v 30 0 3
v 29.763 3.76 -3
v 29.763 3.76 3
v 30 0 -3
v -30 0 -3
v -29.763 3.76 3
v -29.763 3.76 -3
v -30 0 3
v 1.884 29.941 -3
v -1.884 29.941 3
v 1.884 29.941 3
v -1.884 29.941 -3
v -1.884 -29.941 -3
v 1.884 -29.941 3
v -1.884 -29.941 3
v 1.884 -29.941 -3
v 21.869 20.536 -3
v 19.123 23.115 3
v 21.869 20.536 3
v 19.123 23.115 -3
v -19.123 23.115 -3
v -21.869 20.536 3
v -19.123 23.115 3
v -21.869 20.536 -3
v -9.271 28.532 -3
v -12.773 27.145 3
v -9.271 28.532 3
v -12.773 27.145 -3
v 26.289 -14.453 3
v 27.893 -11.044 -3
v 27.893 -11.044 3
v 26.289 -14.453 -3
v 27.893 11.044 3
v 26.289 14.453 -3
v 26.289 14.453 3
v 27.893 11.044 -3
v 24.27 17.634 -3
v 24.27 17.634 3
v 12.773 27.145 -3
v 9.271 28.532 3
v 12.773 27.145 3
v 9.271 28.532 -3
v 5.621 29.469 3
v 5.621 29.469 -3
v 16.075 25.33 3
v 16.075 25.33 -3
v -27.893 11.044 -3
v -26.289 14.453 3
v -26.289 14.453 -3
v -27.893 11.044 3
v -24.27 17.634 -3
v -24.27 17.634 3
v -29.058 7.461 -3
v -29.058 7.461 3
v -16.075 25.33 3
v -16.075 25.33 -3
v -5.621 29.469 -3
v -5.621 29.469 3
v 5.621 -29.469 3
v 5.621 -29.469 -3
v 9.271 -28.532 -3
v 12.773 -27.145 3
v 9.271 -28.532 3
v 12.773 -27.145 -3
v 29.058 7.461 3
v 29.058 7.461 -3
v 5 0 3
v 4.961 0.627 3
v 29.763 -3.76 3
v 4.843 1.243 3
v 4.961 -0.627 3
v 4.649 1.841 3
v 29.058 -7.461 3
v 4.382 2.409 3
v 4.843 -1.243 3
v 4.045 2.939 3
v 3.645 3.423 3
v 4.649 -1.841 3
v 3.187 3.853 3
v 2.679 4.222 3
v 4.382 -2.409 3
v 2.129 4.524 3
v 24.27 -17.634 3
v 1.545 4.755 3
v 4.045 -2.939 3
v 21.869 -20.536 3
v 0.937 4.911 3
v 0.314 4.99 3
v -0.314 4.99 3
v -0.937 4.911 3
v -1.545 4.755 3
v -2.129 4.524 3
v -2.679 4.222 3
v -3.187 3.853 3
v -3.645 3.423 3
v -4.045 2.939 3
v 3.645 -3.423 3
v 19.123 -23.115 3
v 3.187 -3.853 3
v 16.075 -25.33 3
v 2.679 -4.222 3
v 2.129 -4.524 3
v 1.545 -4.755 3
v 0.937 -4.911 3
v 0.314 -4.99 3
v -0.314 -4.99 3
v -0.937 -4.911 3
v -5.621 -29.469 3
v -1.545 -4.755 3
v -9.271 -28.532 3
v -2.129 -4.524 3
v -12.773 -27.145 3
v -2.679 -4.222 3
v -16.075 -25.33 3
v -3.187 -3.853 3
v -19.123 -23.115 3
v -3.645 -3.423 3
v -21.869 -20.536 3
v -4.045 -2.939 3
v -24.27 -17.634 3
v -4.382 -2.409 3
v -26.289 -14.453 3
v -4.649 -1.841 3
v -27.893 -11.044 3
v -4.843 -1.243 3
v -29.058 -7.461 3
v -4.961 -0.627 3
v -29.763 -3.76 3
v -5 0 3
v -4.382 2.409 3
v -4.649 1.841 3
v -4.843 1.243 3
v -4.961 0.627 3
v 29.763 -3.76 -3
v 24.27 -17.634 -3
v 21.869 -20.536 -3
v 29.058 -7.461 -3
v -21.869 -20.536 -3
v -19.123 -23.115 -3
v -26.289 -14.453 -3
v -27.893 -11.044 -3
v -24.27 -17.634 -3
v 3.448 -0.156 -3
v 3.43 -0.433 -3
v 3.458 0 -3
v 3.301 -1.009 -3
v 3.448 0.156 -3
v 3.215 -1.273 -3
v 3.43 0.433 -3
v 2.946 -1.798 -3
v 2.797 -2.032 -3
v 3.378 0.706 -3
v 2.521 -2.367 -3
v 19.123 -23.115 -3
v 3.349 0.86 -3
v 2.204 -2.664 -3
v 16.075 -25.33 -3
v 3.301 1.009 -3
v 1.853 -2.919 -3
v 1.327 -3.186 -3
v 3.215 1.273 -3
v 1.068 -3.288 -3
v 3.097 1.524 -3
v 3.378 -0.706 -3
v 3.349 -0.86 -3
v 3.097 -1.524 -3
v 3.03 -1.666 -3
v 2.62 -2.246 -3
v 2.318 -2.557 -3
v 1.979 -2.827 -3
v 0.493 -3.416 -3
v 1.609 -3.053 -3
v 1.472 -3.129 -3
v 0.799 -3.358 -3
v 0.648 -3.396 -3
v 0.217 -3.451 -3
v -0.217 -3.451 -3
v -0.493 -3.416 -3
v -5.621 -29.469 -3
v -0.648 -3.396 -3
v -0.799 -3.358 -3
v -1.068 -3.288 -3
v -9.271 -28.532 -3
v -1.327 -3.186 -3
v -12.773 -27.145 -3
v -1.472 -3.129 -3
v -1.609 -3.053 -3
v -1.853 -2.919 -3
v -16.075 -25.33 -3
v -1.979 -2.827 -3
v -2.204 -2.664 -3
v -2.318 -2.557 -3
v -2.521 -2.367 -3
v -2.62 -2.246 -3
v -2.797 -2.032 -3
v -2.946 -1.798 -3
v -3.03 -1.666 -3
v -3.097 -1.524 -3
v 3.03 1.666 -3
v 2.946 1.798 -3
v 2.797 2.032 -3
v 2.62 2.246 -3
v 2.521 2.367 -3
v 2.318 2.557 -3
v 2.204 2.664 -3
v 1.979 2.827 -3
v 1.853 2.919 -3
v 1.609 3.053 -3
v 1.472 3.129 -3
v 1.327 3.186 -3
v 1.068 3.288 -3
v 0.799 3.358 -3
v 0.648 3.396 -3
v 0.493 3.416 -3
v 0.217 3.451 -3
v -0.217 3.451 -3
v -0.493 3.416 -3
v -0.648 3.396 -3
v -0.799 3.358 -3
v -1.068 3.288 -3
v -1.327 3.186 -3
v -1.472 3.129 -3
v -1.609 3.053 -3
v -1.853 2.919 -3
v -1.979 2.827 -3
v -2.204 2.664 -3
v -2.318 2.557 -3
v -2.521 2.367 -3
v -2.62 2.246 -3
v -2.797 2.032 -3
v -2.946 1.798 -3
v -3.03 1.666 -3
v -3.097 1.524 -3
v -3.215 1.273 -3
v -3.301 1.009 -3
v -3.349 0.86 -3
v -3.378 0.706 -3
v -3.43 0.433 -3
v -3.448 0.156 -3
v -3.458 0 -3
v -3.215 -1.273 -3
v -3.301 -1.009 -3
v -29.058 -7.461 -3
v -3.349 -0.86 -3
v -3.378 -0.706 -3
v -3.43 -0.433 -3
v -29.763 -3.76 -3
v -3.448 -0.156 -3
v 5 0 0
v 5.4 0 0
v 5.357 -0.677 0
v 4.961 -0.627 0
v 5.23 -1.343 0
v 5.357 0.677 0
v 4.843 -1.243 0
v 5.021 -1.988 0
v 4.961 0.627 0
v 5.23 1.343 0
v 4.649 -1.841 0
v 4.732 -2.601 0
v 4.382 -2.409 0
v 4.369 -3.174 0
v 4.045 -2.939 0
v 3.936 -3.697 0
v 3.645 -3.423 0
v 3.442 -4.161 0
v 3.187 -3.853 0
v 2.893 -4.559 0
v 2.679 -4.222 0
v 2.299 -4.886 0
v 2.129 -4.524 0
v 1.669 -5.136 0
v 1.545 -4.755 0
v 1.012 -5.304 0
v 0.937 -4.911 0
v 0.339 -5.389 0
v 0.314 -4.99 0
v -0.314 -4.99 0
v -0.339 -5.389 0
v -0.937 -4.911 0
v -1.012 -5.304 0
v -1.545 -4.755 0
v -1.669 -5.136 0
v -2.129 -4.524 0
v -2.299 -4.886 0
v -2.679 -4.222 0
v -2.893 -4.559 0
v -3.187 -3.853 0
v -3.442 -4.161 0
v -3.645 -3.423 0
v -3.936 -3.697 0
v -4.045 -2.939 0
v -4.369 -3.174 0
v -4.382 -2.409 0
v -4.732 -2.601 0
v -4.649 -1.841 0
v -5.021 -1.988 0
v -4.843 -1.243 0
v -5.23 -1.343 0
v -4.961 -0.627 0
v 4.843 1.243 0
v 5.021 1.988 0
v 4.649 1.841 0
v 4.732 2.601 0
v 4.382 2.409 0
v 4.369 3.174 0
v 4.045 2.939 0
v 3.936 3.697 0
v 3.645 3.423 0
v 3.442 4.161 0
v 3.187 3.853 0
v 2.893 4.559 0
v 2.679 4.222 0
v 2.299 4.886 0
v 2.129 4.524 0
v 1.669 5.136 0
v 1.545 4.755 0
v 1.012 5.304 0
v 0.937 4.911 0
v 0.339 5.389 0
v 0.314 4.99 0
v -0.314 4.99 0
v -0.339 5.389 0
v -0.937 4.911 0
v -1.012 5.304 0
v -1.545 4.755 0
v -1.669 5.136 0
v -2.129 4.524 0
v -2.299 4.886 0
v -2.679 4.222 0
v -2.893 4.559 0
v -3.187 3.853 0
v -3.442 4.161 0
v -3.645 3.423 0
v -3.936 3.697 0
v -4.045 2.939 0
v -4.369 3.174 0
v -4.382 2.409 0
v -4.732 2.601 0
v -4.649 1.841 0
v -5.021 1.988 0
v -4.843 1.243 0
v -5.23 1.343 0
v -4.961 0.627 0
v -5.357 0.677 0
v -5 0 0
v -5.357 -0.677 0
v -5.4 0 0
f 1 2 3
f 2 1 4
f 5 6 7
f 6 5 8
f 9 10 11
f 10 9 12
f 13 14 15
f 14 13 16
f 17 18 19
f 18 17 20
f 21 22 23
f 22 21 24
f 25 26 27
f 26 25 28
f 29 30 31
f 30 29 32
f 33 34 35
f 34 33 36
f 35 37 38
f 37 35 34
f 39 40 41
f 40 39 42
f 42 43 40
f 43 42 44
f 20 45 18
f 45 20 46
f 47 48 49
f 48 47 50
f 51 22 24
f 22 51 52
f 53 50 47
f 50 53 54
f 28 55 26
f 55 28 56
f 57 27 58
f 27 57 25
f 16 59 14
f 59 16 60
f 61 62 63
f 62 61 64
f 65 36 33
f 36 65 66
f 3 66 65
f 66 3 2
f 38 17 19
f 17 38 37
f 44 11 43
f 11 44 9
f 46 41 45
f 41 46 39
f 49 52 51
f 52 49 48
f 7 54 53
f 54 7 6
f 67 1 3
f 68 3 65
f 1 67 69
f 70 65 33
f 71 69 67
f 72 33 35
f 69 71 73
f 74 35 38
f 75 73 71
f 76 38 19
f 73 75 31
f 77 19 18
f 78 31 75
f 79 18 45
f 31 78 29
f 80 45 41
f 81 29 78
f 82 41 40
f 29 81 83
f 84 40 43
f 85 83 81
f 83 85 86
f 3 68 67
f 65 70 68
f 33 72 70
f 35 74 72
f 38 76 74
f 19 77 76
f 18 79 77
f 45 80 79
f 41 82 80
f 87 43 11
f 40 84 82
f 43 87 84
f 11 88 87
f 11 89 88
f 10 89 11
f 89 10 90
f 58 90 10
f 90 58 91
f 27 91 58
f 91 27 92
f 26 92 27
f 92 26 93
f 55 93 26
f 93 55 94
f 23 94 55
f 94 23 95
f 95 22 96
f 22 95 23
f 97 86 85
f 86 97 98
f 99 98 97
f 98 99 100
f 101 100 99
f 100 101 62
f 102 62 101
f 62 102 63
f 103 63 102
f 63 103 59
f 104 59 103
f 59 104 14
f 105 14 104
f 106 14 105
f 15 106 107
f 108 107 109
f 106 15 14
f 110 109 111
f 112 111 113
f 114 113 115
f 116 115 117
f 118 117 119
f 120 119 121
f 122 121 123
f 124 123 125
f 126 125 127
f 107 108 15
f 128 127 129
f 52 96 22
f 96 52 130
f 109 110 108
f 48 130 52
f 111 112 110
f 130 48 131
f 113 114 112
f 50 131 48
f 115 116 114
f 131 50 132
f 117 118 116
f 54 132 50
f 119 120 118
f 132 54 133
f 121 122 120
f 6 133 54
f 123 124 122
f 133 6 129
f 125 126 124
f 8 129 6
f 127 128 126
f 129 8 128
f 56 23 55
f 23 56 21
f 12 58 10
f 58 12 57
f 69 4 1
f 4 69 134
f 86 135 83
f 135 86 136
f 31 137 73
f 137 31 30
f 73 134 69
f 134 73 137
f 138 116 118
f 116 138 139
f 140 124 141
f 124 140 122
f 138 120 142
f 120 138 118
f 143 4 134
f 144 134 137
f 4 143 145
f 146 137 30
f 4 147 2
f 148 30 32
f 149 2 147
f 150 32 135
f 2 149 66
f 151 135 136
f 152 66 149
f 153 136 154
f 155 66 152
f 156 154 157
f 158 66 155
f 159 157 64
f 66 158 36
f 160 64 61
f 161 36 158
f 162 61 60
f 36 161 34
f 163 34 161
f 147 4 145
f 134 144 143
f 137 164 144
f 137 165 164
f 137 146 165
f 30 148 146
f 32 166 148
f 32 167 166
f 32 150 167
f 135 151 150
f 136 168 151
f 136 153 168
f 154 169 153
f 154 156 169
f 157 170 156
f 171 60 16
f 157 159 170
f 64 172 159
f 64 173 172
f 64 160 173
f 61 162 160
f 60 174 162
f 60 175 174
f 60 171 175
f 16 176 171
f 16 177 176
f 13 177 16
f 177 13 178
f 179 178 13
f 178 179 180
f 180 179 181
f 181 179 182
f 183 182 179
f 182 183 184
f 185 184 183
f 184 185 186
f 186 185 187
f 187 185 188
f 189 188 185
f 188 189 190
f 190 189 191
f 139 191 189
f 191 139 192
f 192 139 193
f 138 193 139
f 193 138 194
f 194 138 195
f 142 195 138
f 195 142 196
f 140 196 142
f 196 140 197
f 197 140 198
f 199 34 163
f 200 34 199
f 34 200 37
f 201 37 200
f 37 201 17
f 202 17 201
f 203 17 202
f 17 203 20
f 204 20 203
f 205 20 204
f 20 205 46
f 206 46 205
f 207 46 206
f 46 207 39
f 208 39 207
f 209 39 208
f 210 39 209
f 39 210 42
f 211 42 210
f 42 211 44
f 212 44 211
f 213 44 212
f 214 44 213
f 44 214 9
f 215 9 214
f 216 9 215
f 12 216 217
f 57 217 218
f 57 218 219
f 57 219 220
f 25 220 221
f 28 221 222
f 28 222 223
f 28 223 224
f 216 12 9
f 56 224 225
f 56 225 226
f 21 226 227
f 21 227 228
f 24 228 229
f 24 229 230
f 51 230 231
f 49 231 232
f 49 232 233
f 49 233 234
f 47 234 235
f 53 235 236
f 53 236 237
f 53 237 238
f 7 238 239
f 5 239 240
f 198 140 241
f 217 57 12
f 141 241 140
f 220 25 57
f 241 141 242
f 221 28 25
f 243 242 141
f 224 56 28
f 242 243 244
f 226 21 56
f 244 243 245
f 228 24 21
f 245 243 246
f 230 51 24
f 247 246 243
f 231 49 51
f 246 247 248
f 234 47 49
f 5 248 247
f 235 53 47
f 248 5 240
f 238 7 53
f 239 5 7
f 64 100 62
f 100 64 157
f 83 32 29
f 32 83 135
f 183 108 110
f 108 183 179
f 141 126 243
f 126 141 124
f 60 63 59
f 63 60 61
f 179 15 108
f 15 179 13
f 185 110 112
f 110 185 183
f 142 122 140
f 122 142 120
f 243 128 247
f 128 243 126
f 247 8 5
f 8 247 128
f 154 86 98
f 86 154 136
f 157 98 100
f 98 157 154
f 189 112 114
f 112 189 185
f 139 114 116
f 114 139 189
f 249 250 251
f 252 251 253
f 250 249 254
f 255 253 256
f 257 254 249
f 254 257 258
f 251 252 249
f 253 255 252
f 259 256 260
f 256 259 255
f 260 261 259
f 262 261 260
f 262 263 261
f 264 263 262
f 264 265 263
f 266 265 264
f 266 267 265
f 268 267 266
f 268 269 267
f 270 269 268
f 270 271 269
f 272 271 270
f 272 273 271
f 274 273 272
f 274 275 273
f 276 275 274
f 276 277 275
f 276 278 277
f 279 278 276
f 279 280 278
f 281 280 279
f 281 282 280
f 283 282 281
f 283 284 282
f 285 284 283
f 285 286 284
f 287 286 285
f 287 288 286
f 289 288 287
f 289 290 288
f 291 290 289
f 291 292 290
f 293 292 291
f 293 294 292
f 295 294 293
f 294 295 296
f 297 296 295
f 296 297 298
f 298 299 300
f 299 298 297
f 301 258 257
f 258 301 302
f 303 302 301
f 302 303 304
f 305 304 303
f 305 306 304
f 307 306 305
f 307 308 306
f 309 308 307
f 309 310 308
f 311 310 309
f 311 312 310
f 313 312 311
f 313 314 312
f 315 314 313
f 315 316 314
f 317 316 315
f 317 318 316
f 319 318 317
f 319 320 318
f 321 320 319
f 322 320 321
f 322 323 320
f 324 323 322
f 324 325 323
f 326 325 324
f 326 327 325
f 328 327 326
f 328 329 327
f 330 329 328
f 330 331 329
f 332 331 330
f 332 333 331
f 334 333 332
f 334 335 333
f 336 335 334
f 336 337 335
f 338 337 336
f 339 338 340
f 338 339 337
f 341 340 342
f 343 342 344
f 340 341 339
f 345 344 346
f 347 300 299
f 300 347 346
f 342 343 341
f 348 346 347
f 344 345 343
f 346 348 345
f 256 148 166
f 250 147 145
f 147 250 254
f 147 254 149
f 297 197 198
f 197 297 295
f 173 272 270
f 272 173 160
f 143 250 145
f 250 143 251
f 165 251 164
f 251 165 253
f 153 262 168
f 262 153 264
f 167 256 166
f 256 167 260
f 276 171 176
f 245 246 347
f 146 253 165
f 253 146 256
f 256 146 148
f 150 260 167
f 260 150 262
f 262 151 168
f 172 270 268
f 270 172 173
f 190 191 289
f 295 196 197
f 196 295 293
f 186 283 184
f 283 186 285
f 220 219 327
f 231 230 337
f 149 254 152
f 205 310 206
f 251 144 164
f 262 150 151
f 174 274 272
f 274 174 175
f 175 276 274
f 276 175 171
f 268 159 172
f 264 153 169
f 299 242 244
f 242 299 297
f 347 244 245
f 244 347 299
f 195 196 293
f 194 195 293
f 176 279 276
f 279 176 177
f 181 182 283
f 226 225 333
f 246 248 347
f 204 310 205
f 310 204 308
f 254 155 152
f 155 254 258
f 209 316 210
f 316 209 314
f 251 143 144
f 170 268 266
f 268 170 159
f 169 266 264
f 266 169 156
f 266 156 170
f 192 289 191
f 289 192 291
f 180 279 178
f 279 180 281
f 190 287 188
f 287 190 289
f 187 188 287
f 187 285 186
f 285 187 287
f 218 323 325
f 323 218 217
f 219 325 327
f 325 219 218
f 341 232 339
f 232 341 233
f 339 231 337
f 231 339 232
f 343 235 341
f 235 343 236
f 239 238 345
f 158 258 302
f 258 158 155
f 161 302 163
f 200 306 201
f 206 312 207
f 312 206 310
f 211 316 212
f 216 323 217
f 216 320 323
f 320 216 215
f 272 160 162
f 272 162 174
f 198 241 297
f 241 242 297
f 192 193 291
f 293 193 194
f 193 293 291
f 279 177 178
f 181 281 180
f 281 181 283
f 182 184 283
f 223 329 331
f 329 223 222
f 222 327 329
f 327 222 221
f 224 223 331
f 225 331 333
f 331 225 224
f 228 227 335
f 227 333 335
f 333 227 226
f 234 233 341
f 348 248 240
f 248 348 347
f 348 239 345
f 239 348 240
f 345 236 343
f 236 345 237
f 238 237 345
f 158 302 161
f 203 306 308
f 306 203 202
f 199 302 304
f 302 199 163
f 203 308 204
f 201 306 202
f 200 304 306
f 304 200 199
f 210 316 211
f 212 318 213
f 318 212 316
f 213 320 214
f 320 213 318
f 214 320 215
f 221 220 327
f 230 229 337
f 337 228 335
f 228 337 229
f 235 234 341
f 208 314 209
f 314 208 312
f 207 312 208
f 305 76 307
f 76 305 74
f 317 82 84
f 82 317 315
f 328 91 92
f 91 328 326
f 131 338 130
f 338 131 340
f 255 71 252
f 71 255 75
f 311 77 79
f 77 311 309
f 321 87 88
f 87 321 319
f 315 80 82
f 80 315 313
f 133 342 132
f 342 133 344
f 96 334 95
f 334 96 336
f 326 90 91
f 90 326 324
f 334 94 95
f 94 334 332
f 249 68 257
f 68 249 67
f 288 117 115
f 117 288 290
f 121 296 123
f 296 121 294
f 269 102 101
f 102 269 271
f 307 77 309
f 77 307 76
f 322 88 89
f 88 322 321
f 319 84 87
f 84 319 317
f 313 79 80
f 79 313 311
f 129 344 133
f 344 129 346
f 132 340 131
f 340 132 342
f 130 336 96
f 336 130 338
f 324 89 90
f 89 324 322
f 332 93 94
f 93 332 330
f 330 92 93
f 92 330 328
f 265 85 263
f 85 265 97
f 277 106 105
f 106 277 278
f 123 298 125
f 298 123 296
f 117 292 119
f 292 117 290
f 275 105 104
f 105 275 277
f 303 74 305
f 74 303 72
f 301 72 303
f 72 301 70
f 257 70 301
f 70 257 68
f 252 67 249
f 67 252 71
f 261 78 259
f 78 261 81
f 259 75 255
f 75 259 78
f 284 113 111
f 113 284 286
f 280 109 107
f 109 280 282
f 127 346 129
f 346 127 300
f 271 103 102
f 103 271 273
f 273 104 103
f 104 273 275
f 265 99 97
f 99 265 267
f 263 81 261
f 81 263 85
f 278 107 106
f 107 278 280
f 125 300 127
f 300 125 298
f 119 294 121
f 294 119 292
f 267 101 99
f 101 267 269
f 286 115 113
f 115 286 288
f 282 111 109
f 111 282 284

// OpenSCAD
$fn = 50;

difference() {
	union() {
		translate(v = [0, 0, -3.0]) {
			cylinder(h = 6, r = 30.0);
		}
		#translate(v = [0, 0, -6.0]) {
			cylinder(h = 6, r = 2.875);
		}
	}
	union() {
		translate(v = [0, 0, 0]) {
			rotate(a = [0, 0, 0]) {
				difference() {
					union() {
						translate(v = [0, 0, -6.0]) {
							cylinder(h = 6, r = 2.6);
						}
						translate(v = [0, 0, -3.9]) {
							cylinder(h = 3.9, r1 = 2.875, r2 = 5.4);
						}
						translate(v = [0, 0, -6.0]) {
							cylinder(h = 6, r = 2.875);
						}
						translate(v = [0, 0, -6.0]) {
							cylinder(h = 6, r = 2.6);
						}
					}
					union();
				}
			}
		}
		#cylinder(h = 3, r = 5.0);
	}
}
